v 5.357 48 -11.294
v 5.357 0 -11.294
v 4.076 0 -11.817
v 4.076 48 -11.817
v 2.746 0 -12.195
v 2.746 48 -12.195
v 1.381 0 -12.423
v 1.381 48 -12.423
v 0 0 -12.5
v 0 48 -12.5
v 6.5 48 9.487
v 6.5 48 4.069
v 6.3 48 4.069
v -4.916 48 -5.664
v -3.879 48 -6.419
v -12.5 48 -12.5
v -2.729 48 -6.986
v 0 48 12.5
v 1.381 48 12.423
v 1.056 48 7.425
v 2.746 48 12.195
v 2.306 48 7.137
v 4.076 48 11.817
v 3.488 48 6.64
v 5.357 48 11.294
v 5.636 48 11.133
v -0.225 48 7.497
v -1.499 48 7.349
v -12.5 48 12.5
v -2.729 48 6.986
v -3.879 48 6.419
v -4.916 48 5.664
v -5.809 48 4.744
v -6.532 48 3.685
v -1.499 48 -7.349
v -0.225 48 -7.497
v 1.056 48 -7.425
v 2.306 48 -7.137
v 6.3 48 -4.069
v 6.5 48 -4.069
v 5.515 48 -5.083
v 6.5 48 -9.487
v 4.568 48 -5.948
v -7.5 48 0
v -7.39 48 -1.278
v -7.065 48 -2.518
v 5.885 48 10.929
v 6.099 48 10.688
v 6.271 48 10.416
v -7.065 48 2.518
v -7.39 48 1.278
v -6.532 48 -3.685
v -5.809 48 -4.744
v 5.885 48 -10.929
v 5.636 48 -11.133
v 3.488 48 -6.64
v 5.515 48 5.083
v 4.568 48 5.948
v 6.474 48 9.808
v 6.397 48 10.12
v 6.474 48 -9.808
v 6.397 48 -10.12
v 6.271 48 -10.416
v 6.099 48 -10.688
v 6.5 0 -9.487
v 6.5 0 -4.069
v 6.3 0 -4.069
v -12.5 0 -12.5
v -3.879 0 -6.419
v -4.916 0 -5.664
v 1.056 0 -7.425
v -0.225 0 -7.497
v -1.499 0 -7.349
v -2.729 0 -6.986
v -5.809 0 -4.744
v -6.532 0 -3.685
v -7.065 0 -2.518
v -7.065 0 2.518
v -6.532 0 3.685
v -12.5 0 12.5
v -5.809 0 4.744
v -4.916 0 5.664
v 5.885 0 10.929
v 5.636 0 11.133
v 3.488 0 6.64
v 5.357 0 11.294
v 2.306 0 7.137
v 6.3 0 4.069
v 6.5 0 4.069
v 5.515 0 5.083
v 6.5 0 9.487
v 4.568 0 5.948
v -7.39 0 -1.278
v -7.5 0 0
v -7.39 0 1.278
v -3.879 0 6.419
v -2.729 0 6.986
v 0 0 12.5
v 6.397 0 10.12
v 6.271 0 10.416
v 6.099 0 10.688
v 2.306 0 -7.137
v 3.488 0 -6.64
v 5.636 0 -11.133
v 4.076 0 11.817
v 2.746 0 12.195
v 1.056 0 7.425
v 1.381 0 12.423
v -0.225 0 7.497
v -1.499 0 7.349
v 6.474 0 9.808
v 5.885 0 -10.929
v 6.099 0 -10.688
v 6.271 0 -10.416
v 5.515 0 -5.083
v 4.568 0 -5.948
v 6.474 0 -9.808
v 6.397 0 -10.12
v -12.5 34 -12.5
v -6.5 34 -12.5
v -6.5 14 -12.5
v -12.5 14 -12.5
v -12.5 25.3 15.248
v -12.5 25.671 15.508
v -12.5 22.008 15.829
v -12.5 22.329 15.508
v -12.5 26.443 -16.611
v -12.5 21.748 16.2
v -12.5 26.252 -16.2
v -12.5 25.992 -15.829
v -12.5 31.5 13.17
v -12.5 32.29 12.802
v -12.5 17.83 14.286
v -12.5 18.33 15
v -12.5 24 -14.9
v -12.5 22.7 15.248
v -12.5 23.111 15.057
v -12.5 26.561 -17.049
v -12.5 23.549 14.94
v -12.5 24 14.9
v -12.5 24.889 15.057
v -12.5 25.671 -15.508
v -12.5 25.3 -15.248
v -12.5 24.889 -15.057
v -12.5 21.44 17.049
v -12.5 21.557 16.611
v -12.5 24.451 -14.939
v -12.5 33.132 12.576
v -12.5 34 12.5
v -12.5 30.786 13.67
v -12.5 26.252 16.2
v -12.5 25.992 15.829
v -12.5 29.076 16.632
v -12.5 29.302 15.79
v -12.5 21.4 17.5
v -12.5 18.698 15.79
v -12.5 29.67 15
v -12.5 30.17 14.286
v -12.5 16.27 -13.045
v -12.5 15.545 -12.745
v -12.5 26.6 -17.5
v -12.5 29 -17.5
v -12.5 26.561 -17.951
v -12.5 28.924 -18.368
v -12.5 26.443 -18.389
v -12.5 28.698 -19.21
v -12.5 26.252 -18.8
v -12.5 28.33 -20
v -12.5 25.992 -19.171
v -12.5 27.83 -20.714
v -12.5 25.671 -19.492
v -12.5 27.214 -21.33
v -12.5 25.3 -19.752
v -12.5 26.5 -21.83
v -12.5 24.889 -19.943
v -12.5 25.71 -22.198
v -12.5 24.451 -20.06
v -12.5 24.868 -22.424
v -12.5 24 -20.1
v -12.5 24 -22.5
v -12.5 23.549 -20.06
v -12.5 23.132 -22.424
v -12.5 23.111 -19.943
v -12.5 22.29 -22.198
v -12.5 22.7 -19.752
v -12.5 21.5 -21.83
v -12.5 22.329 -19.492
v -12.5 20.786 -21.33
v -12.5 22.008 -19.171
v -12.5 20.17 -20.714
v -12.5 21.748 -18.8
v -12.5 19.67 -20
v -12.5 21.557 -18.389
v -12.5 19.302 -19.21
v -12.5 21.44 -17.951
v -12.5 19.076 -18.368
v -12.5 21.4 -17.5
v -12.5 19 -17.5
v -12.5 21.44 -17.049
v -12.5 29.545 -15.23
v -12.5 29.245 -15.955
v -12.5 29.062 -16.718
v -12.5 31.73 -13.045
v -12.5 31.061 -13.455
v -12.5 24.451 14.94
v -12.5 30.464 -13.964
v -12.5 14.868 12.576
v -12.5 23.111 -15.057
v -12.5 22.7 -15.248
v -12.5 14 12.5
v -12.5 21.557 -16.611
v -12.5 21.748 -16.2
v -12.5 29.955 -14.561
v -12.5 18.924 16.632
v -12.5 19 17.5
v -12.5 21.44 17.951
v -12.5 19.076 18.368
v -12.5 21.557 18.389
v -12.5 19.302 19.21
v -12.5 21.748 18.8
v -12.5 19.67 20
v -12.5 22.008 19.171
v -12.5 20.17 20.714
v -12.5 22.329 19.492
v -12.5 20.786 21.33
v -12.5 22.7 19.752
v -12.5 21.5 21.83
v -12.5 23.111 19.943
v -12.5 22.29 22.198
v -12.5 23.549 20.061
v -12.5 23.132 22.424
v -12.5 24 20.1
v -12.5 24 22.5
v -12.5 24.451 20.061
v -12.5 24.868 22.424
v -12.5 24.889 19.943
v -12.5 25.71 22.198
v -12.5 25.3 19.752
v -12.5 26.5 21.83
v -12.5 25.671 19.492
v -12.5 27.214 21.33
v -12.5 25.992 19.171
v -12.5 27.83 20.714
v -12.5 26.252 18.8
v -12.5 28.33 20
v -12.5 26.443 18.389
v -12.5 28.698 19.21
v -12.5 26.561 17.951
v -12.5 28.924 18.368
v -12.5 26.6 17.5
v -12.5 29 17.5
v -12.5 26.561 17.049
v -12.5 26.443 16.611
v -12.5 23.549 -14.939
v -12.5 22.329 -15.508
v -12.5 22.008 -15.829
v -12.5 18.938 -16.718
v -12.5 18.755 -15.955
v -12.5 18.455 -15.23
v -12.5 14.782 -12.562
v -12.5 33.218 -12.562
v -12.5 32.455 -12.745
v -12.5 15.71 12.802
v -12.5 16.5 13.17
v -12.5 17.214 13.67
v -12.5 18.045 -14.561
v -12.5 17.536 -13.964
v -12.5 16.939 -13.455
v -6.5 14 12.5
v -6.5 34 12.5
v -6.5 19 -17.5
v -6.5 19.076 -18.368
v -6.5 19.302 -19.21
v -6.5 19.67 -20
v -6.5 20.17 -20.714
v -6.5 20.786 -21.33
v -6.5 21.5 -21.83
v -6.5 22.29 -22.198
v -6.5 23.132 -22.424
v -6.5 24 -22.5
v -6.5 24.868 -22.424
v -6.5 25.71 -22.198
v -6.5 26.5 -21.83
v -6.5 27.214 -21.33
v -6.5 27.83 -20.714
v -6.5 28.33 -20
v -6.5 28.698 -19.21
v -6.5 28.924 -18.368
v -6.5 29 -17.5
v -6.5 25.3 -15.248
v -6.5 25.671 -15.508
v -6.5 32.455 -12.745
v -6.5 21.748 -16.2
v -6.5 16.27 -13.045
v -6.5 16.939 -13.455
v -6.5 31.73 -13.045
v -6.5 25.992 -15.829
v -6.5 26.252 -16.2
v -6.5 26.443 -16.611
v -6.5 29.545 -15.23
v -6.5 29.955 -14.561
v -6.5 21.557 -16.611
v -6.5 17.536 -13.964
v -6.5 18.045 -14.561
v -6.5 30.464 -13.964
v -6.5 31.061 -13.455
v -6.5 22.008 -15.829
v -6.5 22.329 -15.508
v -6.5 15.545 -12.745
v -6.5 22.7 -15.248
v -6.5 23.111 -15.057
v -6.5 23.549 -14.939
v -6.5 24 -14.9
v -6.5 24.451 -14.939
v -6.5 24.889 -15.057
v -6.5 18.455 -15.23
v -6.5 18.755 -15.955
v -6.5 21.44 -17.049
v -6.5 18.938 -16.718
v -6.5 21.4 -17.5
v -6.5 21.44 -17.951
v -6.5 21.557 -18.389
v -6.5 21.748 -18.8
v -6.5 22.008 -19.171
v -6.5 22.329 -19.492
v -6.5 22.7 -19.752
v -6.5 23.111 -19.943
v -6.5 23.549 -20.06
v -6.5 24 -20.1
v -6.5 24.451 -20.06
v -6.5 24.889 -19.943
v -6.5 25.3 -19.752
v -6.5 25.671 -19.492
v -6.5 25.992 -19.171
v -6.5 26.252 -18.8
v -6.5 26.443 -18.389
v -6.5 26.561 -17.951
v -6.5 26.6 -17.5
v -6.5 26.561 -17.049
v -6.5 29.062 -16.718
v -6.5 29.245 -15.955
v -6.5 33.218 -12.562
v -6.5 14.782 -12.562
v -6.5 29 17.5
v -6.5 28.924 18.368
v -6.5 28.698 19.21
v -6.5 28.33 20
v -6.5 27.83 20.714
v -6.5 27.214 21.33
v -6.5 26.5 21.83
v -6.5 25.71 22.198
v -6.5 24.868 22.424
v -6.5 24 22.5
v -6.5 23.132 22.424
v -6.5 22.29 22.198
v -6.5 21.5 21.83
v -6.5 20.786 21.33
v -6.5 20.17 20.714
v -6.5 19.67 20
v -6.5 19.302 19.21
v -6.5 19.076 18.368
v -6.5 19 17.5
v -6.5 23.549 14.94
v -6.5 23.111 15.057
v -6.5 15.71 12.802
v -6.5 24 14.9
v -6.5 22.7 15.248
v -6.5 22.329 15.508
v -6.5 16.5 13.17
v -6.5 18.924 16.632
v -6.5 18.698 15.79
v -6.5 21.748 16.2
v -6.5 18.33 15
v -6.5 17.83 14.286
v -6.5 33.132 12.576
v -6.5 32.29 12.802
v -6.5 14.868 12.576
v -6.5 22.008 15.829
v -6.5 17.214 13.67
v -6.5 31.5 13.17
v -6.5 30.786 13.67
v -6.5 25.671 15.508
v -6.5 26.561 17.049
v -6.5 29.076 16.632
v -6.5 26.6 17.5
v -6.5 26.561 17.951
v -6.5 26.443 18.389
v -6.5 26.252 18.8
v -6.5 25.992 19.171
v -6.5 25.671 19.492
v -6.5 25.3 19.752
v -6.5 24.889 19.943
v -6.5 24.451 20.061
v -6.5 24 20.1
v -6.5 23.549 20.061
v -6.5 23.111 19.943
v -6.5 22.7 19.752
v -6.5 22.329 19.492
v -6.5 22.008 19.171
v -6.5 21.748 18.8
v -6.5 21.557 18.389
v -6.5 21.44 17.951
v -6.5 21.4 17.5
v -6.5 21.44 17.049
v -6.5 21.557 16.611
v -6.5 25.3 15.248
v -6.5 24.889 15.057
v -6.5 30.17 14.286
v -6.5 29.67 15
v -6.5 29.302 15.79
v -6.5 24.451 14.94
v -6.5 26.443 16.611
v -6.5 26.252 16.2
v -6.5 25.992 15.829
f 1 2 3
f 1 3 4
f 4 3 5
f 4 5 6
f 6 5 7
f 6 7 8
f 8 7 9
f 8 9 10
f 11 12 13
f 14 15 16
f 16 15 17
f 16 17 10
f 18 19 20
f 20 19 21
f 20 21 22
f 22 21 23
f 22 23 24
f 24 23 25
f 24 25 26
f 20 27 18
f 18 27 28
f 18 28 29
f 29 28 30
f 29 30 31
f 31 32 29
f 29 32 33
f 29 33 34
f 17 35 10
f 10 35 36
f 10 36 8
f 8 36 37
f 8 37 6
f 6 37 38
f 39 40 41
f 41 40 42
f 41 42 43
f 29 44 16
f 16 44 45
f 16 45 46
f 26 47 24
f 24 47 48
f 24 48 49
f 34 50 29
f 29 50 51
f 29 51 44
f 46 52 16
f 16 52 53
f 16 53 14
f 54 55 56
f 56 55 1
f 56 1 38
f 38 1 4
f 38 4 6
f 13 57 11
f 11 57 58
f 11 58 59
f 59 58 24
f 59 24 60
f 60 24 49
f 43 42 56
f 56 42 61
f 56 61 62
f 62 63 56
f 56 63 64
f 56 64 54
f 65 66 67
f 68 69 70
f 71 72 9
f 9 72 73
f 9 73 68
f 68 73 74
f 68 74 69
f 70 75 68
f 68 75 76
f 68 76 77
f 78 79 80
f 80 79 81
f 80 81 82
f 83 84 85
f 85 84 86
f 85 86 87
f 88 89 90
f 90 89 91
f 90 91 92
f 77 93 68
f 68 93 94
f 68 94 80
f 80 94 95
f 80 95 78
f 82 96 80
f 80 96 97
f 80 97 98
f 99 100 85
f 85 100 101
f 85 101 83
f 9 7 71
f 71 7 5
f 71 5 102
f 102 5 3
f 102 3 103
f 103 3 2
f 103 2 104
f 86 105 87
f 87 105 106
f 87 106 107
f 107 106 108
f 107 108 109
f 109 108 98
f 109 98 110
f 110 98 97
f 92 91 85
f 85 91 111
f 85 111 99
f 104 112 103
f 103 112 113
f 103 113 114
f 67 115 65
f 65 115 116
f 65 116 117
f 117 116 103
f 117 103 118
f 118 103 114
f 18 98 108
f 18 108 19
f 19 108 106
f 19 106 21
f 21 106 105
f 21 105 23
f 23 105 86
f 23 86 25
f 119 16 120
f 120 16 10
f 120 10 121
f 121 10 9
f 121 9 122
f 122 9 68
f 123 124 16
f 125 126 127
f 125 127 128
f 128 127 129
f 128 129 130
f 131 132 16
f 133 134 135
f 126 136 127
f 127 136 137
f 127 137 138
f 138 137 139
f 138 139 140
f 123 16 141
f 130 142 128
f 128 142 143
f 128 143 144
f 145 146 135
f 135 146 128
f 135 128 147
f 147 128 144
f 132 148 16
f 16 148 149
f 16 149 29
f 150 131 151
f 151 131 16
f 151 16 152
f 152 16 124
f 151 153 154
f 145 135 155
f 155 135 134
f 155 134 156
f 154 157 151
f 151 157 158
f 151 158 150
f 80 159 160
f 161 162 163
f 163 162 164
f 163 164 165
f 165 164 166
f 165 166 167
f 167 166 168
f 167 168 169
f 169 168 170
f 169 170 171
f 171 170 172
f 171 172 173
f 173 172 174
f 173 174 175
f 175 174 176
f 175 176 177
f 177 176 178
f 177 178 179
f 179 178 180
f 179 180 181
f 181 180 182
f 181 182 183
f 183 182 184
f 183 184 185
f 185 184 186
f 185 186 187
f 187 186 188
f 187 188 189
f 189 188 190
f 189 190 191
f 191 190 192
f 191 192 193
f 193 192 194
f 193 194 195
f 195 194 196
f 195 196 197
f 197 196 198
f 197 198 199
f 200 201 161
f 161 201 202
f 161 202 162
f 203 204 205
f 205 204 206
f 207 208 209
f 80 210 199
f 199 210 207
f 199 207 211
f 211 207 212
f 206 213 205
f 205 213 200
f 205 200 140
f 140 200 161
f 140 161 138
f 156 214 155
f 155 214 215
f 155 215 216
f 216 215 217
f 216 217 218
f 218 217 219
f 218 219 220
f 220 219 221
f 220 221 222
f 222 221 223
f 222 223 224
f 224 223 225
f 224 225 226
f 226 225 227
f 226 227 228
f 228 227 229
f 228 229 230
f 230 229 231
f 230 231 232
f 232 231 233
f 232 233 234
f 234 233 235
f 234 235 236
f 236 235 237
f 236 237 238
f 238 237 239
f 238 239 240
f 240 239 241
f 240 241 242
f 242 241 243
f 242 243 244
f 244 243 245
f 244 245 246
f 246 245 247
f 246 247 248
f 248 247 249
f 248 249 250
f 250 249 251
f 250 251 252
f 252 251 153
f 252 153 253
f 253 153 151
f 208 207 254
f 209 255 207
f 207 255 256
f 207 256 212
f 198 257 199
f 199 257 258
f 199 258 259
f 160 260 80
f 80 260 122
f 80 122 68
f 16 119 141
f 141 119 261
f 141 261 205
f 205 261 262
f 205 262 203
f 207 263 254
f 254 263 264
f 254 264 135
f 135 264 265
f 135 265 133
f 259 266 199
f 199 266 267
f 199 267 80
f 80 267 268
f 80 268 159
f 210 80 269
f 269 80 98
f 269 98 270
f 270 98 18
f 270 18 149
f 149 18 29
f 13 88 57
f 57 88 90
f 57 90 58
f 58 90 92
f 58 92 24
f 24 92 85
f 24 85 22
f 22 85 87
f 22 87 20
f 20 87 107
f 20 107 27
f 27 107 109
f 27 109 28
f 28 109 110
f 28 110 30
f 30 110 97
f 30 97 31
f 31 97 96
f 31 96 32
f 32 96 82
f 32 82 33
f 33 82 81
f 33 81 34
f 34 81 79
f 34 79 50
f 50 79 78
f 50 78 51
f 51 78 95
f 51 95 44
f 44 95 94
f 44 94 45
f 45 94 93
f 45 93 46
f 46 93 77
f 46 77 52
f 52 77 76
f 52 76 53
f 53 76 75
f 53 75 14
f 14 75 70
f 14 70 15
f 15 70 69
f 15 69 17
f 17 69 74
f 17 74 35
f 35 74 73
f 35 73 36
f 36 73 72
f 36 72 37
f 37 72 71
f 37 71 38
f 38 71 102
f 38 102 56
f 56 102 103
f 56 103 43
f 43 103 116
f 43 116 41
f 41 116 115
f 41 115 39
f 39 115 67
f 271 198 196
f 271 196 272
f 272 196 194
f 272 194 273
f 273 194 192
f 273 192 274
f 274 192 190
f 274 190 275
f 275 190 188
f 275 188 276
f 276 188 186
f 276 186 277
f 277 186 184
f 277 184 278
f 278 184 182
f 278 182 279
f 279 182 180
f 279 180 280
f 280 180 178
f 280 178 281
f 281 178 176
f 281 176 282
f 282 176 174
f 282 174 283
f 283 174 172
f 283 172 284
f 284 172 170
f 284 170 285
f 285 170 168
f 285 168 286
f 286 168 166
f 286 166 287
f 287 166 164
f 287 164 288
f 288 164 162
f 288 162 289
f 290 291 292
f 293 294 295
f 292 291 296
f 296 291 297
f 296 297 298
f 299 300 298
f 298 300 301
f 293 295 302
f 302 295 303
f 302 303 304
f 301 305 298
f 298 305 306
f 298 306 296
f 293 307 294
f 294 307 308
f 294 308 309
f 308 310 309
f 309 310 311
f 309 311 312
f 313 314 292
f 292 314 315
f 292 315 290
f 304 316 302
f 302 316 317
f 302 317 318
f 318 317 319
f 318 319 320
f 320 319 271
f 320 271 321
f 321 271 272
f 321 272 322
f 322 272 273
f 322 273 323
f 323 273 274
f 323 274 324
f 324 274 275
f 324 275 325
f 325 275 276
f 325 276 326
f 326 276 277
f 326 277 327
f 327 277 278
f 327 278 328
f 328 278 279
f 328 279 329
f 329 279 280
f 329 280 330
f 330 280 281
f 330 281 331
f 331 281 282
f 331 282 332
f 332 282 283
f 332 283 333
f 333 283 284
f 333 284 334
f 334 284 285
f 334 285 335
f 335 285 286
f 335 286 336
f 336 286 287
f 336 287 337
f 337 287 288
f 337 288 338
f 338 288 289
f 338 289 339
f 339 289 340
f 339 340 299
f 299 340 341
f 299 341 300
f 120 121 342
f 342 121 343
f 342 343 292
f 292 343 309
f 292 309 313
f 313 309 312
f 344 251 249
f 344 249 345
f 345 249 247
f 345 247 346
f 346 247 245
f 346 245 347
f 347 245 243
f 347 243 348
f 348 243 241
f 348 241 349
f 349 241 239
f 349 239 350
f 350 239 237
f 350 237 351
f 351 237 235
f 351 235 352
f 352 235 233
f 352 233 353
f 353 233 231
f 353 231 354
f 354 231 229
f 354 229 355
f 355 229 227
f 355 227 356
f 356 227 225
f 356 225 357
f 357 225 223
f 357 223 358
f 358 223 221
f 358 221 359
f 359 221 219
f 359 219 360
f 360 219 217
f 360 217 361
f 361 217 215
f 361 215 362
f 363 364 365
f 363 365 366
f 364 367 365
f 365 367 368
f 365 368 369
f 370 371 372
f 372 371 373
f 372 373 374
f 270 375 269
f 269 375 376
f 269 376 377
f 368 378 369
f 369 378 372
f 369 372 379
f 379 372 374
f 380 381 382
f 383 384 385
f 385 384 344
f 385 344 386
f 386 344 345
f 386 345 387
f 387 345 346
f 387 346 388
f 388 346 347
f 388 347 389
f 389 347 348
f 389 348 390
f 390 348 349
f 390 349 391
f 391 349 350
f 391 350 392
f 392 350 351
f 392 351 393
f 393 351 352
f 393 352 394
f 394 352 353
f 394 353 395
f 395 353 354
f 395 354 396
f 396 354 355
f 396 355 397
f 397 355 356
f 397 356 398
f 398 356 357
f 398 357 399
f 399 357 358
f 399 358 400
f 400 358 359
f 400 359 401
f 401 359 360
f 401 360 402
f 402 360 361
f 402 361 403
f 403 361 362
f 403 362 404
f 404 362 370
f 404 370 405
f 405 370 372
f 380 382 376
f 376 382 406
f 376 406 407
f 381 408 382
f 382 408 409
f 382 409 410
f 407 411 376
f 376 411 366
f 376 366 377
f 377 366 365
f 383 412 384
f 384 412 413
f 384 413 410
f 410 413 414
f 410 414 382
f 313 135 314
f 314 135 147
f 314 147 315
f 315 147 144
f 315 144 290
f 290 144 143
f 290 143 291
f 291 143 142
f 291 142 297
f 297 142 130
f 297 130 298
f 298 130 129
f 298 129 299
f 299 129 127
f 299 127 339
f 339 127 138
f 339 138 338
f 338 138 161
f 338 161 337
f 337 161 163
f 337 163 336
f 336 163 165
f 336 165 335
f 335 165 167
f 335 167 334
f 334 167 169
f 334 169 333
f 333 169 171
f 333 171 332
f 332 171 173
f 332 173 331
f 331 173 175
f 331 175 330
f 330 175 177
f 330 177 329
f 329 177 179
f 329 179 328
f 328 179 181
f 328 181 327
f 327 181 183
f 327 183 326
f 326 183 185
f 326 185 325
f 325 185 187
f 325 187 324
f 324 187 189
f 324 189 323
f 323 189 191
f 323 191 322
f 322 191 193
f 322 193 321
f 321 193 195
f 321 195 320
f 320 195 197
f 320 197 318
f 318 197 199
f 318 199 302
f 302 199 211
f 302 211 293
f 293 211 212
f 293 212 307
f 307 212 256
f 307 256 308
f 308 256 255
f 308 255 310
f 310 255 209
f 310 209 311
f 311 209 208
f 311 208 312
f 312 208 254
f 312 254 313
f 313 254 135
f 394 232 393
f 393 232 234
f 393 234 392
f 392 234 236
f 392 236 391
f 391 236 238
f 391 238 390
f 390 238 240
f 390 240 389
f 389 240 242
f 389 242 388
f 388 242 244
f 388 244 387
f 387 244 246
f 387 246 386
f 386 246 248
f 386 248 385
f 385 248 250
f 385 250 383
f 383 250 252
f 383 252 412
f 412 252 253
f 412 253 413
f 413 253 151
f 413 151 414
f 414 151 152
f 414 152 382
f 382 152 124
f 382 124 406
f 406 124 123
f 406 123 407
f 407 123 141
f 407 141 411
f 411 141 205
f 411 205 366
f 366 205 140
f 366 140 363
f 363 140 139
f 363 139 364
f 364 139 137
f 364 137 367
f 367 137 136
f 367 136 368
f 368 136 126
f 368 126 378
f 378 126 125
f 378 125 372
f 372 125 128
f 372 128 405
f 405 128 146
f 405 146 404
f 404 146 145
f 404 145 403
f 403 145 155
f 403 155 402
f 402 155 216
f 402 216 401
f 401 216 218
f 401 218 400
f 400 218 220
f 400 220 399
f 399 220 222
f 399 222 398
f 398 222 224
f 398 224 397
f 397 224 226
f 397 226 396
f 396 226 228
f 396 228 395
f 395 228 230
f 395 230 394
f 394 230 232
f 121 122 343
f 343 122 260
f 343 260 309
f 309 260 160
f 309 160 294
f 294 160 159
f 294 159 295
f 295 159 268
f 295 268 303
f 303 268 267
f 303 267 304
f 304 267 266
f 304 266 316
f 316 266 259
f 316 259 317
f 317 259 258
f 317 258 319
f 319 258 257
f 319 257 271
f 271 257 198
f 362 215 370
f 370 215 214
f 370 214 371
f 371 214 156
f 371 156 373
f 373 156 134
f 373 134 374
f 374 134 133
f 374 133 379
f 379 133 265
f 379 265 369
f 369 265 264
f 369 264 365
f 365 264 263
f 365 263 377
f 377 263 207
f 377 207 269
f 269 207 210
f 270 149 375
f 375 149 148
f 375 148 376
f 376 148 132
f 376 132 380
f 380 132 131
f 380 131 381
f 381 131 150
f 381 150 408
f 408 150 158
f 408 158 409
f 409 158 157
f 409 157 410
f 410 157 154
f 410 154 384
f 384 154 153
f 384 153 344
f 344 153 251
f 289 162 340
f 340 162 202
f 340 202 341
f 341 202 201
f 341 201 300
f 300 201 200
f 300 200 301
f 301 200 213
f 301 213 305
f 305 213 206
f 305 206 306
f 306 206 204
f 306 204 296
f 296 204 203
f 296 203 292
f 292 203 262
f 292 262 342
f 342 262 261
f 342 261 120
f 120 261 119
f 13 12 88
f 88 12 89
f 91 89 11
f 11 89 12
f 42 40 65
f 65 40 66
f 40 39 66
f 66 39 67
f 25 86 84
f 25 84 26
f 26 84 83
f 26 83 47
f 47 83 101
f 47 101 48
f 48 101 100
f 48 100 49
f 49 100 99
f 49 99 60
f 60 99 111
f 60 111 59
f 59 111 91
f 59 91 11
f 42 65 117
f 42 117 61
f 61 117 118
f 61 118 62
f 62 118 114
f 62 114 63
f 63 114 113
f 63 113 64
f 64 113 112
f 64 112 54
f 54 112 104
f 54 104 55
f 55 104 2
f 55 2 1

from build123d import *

# Parameters (mm, degrees)
SKETCH1_R           = 7.5
BOSS_EXTRUDE1_DEPTH = 48
BOSS_EXTRUDE2_DEPTH = 6
SKETCH3_R           = 2.6
CUT_EXTRUDE1_DEPTH  = 6
FILLET6_R           = 5
FILLET7_R           = 5
CUT_EXTRUDE4_DEPTH  = 55.465585465
FILLET9_R           = 2
FILLET11_R          = 2


with BuildPart() as part:
    # Sketch1 → Boss-Extrude1 (new body)
    with BuildSketch(Plane(origin=(0, 0, 0), x_dir=(1, 0, 0), z_dir=(0, 1, 0))):
        with BuildLine():
            Line((0, 12.5), (-12.5, 12.5))
            Line((-12.5, 12.5), (-12.5, -12.5))
            Line((-12.5, -12.5), (0, -12.5))
            ThreePointArc((0, -12.5), (12.5, 0), (0, 12.5))
        make_face()
        with Locations(Location((0, 0, 0), (0, 0, 270))):
            Circle(SKETCH1_R, mode=Mode.SUBTRACT)
    extrude(amount=BOSS_EXTRUDE1_DEPTH)

    # Sketch2 → Boss-Extrude2 (add)
    with BuildSketch(Plane.ZY.offset(12.5)):
        with BuildLine():
            Line((-17.5, 29), (-12.5, 29))
            Line((-12.5, 29), (-12.5, 19))
            Line((-12.5, 19), (-17.5, 19))
            ThreePointArc((-17.5, 19), (-22.5, 24), (-17.5, 29))
        make_face()
        with BuildLine():
            Line((17.5, 29), (12.5, 29))
            Line((12.5, 29), (12.5, 19))
            Line((12.5, 19), (17.5, 19))
            ThreePointArc((17.5, 19), (22.5, 24), (17.5, 29))
        make_face()
    extrude(amount=-BOSS_EXTRUDE2_DEPTH)

    # Sketch3 → Cut-Extrude1 (cut)
    with BuildSketch(Plane.ZY.offset(12.5)):
        with Locations((-17.5, 24)):
            Circle(SKETCH3_R)
        with Locations((17.5, 24)):
            Circle(SKETCH3_R)
    extrude(amount=-CUT_EXTRUDE1_DEPTH, mode=Mode.SUBTRACT)

    # Fillet6
    fillet6_edges = [part.edges().sort_by_distance(p)[0] for p in [
        (-9.5, 19, -12.5),
    ]]
    fillet(fillet6_edges, radius=FILLET6_R - 0.0001)  # a hair under: the kernel refuses the full size

    # Fillet7
    fillet7_edges = [part.edges().sort_by_distance(p)[0] for p in [
        (-9.5, 19, 12.5),
        (-9.5, 29, 12.5),
        (-9.5, 29, -12.5),
    ]]
    fillet(fillet7_edges, radius=FILLET7_R - 0.0001)  # a hair under: the kernel refuses the full size

    # Sketch5 → Cut-Extrude4 (cut, through all)
    with BuildSketch(Plane.XZ):
        Polygon((12.5, 12.5), (6.5, 12.5), (6.5, 4.06939799), (6.3, 4.06939799), (6.3, -4.06939799), (6.5, -4.06939799), (6.5, -12.5), (12.5, -12.5), align=None)
    extrude(amount=-CUT_EXTRUDE4_DEPTH, mode=Mode.SUBTRACT)

    # Fillet9
    fillet9_edges = [part.edges().sort_by_distance(p)[0] for p in [
        (6.5, 24, 10.677078252),
    ]]
    fillet(fillet9_edges, radius=FILLET9_R)

    # Fillet11
    fillet11_edges = [part.edges().sort_by_distance(p)[0] for p in [
        (6.5, 24, -10.677078252),
    ]]
    fillet(fillet11_edges, radius=FILLET11_R)


solid = part.part
